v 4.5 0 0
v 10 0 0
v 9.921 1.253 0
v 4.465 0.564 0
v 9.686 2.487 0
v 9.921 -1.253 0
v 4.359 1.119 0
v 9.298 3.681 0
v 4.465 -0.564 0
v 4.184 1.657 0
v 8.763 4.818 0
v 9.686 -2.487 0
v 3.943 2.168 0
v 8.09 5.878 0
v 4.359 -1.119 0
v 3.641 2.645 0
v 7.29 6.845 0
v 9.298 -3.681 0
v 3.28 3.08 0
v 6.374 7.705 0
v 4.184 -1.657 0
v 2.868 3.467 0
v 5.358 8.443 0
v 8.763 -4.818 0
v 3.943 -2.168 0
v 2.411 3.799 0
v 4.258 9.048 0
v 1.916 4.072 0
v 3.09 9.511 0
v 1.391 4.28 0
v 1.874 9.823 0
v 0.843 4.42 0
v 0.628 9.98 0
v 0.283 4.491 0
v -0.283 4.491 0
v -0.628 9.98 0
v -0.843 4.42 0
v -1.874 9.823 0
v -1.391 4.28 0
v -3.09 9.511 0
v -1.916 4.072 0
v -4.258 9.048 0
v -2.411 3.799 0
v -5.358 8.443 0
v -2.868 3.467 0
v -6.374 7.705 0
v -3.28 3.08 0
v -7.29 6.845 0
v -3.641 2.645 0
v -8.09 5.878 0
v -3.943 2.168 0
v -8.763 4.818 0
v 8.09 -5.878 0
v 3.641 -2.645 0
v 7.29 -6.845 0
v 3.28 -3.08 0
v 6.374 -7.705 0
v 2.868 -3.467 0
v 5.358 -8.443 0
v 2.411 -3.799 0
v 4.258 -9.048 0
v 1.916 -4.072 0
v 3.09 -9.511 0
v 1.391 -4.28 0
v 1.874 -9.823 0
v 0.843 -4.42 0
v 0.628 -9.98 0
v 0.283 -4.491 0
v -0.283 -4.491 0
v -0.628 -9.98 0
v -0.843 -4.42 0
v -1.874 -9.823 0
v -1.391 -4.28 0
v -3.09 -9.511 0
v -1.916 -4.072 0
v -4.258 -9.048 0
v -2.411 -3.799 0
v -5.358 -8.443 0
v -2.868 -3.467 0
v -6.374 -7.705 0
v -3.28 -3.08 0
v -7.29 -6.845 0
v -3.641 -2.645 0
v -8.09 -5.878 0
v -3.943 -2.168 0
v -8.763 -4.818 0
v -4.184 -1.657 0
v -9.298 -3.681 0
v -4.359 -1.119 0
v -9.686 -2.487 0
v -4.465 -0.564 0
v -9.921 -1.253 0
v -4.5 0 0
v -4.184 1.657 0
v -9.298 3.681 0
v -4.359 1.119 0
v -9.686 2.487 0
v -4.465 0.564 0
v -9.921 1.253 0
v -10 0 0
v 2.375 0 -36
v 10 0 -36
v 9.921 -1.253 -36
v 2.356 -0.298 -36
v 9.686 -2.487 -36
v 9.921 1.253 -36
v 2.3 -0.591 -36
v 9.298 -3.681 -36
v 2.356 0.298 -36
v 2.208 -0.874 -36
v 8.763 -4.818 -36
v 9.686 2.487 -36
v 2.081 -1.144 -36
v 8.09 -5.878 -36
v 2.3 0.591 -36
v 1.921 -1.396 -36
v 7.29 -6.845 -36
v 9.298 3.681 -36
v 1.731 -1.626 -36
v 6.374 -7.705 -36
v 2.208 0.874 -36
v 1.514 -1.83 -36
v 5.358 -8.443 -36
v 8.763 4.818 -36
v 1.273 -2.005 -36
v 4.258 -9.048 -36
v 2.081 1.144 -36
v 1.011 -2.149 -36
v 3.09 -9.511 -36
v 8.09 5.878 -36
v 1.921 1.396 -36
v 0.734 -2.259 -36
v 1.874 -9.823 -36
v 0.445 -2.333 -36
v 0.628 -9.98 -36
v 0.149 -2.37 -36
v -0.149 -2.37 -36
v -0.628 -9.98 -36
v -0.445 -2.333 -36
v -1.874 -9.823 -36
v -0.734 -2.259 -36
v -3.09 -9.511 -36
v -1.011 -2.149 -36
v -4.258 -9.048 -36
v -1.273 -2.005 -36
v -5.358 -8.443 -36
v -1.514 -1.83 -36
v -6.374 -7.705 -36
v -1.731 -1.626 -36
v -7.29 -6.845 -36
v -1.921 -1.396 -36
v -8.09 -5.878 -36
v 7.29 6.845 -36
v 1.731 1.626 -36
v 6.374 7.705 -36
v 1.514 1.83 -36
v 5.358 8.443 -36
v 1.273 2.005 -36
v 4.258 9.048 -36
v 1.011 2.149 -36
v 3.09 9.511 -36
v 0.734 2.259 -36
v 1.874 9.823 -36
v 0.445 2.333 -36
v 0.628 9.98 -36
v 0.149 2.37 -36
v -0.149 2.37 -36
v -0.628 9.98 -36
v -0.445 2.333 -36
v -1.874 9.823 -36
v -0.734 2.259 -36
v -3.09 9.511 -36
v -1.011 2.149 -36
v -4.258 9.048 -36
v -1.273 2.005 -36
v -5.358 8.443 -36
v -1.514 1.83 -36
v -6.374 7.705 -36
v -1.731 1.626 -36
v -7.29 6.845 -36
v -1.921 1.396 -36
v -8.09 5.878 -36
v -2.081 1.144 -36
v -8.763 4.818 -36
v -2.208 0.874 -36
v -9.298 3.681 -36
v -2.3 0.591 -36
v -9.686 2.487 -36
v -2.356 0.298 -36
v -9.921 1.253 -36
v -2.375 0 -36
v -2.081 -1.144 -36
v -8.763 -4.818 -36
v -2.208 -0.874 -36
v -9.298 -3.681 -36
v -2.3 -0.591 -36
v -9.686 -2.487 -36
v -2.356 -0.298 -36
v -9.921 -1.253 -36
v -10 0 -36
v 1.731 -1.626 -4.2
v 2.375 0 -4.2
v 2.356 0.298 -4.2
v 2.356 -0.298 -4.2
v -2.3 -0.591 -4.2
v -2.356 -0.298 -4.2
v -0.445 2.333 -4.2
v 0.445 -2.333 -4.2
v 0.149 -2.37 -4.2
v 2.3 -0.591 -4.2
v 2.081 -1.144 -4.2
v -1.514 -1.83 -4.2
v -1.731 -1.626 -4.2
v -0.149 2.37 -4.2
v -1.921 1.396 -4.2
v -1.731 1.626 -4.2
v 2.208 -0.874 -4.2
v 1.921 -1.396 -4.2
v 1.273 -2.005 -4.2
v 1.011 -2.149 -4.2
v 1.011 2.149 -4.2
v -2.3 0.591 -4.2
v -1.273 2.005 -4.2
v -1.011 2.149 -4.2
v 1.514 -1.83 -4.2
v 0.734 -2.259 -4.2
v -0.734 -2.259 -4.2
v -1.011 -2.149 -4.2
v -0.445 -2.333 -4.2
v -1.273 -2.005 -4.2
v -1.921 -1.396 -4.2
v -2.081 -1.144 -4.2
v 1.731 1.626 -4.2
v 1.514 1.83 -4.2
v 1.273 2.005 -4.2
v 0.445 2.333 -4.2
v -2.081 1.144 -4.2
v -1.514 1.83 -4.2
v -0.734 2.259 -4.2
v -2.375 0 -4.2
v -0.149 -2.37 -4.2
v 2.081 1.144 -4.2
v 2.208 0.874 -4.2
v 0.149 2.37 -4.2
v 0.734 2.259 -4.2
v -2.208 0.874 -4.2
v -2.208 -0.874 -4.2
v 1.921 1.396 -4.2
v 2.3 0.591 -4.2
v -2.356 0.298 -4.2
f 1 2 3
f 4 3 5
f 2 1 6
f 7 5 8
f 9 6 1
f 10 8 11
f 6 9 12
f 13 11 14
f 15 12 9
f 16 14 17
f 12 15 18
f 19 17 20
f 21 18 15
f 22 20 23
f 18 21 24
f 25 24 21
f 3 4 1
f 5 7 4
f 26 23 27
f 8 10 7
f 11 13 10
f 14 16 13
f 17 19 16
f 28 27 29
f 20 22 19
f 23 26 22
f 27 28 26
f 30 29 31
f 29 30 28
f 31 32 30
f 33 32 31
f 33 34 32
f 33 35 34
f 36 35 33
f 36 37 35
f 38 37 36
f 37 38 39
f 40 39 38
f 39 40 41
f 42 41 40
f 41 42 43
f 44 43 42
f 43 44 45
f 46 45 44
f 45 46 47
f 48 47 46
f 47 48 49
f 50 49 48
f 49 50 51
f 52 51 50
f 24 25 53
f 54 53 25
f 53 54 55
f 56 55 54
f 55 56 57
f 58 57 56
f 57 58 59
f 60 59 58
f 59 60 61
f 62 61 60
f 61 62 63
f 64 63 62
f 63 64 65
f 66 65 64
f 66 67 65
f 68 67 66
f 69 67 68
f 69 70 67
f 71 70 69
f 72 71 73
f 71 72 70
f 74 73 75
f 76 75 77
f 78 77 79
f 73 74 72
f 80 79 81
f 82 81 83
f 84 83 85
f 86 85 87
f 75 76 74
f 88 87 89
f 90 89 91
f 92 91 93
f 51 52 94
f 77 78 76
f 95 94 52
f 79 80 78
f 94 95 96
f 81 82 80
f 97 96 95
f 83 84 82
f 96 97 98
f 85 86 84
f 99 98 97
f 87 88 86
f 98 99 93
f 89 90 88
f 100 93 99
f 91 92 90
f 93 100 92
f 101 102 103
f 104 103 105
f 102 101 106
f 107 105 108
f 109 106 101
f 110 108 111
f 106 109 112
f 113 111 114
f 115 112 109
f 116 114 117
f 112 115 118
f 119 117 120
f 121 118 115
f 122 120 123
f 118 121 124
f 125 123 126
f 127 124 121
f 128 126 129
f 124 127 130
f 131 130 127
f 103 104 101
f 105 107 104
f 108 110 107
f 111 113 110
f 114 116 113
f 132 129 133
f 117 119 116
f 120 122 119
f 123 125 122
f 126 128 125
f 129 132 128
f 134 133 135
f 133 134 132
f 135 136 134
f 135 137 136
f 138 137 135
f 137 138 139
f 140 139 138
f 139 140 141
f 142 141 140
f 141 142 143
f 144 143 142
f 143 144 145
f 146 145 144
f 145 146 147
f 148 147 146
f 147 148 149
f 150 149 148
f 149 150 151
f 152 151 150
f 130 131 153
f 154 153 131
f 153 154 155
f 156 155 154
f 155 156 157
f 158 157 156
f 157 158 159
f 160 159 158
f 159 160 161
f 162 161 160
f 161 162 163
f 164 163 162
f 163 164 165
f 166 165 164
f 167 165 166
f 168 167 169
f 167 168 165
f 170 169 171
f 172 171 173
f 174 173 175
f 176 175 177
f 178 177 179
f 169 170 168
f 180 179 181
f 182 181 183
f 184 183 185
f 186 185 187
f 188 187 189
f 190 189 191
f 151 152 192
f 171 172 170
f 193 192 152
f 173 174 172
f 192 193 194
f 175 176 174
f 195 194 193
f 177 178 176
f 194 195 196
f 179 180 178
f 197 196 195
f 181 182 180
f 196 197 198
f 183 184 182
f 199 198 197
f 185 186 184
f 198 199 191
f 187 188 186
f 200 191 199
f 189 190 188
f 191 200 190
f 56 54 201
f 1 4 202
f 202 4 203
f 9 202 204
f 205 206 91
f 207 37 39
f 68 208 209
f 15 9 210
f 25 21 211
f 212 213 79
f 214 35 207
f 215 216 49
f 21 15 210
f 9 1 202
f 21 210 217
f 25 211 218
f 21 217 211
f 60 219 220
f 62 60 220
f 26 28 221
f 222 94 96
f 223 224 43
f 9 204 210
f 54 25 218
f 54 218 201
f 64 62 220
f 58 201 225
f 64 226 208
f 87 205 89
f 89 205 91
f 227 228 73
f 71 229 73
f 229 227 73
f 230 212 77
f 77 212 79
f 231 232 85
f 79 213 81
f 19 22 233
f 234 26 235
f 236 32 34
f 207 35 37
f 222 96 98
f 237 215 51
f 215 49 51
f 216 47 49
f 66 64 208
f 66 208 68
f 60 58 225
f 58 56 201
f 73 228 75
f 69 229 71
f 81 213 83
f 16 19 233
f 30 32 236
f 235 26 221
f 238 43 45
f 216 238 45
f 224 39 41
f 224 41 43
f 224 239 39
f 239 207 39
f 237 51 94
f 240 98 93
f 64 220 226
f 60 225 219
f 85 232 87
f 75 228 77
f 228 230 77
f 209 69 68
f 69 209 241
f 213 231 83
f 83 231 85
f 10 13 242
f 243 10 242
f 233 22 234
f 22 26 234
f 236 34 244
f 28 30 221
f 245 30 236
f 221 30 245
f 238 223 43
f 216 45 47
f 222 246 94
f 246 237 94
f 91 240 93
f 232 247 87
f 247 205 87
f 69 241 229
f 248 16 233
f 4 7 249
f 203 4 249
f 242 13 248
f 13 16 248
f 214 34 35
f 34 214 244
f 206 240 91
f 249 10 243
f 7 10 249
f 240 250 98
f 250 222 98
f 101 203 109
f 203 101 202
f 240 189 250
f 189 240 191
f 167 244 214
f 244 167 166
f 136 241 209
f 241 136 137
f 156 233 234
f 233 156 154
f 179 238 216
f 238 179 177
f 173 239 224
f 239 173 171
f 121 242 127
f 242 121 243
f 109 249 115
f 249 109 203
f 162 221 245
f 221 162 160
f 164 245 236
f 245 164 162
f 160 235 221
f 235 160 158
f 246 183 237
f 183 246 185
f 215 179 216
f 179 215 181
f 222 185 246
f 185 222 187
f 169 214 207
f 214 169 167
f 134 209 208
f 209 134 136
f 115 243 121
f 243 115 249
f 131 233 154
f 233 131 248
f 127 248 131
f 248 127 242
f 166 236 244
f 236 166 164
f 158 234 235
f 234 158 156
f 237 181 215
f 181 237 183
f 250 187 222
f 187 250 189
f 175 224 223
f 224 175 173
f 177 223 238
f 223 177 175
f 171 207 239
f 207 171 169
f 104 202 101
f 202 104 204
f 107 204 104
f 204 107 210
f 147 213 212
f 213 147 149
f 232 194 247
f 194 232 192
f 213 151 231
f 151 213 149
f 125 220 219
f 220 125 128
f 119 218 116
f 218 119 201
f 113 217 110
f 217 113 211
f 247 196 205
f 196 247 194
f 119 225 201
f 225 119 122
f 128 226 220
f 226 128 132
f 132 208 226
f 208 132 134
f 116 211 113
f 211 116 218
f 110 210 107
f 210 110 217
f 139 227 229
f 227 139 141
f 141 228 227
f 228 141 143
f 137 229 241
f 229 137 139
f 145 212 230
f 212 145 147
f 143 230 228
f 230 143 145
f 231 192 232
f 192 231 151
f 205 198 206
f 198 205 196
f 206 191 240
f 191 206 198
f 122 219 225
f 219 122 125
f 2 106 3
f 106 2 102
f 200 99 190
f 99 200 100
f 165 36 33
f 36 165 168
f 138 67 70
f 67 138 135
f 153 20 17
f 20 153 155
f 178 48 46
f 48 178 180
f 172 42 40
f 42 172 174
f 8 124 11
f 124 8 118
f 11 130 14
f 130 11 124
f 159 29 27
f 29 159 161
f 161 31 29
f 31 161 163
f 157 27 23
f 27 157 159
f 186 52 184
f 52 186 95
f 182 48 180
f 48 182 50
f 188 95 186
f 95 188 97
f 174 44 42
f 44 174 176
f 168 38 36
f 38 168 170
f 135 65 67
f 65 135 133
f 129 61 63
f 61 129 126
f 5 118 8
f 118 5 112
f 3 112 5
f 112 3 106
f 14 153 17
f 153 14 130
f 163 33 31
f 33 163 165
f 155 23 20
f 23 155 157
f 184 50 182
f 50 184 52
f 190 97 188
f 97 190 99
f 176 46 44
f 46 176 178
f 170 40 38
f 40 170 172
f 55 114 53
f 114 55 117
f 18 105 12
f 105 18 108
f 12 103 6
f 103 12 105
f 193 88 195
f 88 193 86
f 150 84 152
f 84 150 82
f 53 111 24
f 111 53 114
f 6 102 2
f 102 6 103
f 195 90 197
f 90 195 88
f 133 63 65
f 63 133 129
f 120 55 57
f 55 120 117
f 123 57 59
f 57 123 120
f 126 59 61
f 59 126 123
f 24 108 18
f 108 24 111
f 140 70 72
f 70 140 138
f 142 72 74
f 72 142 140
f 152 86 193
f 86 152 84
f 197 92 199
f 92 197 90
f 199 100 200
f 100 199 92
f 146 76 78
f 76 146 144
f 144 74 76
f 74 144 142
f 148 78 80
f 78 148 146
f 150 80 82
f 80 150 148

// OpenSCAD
$fn = 50;


difference() {
	union() {
		translate(v = [0, 0, -36.0000000000]) {
			cylinder(h = 36, r = 10.0000000000);
		}
		cylinder(h = 0, r = 16.0000000000);
	}
	union() {
		translate(v = [0, 0, 0]) {
			rotate(a = [0, 0, 0]) {
				difference() {
					union() {
						#translate(v = [0, 0, -36.0000000000]) {
							cylinder(h = 36, r = 2.2500000000);
						}
						#translate(v = [0, 0, -4.2000000000]) {
							cylinder(h = 4.2000000000, r = 10.0000000000, r1 = 2.3750000000, r2 = 4.5000000000);
						}
						#translate(v = [0, 0, -36.0000000000]) {
							cylinder(h = 36, r = 2.3750000000);
						}
						#translate(v = [0, 0, -36.0000000000]) {
							cylinder(h = 36, r = 2.2500000000);
						}
					}
					union();
				}
			}
		}
	}
}
